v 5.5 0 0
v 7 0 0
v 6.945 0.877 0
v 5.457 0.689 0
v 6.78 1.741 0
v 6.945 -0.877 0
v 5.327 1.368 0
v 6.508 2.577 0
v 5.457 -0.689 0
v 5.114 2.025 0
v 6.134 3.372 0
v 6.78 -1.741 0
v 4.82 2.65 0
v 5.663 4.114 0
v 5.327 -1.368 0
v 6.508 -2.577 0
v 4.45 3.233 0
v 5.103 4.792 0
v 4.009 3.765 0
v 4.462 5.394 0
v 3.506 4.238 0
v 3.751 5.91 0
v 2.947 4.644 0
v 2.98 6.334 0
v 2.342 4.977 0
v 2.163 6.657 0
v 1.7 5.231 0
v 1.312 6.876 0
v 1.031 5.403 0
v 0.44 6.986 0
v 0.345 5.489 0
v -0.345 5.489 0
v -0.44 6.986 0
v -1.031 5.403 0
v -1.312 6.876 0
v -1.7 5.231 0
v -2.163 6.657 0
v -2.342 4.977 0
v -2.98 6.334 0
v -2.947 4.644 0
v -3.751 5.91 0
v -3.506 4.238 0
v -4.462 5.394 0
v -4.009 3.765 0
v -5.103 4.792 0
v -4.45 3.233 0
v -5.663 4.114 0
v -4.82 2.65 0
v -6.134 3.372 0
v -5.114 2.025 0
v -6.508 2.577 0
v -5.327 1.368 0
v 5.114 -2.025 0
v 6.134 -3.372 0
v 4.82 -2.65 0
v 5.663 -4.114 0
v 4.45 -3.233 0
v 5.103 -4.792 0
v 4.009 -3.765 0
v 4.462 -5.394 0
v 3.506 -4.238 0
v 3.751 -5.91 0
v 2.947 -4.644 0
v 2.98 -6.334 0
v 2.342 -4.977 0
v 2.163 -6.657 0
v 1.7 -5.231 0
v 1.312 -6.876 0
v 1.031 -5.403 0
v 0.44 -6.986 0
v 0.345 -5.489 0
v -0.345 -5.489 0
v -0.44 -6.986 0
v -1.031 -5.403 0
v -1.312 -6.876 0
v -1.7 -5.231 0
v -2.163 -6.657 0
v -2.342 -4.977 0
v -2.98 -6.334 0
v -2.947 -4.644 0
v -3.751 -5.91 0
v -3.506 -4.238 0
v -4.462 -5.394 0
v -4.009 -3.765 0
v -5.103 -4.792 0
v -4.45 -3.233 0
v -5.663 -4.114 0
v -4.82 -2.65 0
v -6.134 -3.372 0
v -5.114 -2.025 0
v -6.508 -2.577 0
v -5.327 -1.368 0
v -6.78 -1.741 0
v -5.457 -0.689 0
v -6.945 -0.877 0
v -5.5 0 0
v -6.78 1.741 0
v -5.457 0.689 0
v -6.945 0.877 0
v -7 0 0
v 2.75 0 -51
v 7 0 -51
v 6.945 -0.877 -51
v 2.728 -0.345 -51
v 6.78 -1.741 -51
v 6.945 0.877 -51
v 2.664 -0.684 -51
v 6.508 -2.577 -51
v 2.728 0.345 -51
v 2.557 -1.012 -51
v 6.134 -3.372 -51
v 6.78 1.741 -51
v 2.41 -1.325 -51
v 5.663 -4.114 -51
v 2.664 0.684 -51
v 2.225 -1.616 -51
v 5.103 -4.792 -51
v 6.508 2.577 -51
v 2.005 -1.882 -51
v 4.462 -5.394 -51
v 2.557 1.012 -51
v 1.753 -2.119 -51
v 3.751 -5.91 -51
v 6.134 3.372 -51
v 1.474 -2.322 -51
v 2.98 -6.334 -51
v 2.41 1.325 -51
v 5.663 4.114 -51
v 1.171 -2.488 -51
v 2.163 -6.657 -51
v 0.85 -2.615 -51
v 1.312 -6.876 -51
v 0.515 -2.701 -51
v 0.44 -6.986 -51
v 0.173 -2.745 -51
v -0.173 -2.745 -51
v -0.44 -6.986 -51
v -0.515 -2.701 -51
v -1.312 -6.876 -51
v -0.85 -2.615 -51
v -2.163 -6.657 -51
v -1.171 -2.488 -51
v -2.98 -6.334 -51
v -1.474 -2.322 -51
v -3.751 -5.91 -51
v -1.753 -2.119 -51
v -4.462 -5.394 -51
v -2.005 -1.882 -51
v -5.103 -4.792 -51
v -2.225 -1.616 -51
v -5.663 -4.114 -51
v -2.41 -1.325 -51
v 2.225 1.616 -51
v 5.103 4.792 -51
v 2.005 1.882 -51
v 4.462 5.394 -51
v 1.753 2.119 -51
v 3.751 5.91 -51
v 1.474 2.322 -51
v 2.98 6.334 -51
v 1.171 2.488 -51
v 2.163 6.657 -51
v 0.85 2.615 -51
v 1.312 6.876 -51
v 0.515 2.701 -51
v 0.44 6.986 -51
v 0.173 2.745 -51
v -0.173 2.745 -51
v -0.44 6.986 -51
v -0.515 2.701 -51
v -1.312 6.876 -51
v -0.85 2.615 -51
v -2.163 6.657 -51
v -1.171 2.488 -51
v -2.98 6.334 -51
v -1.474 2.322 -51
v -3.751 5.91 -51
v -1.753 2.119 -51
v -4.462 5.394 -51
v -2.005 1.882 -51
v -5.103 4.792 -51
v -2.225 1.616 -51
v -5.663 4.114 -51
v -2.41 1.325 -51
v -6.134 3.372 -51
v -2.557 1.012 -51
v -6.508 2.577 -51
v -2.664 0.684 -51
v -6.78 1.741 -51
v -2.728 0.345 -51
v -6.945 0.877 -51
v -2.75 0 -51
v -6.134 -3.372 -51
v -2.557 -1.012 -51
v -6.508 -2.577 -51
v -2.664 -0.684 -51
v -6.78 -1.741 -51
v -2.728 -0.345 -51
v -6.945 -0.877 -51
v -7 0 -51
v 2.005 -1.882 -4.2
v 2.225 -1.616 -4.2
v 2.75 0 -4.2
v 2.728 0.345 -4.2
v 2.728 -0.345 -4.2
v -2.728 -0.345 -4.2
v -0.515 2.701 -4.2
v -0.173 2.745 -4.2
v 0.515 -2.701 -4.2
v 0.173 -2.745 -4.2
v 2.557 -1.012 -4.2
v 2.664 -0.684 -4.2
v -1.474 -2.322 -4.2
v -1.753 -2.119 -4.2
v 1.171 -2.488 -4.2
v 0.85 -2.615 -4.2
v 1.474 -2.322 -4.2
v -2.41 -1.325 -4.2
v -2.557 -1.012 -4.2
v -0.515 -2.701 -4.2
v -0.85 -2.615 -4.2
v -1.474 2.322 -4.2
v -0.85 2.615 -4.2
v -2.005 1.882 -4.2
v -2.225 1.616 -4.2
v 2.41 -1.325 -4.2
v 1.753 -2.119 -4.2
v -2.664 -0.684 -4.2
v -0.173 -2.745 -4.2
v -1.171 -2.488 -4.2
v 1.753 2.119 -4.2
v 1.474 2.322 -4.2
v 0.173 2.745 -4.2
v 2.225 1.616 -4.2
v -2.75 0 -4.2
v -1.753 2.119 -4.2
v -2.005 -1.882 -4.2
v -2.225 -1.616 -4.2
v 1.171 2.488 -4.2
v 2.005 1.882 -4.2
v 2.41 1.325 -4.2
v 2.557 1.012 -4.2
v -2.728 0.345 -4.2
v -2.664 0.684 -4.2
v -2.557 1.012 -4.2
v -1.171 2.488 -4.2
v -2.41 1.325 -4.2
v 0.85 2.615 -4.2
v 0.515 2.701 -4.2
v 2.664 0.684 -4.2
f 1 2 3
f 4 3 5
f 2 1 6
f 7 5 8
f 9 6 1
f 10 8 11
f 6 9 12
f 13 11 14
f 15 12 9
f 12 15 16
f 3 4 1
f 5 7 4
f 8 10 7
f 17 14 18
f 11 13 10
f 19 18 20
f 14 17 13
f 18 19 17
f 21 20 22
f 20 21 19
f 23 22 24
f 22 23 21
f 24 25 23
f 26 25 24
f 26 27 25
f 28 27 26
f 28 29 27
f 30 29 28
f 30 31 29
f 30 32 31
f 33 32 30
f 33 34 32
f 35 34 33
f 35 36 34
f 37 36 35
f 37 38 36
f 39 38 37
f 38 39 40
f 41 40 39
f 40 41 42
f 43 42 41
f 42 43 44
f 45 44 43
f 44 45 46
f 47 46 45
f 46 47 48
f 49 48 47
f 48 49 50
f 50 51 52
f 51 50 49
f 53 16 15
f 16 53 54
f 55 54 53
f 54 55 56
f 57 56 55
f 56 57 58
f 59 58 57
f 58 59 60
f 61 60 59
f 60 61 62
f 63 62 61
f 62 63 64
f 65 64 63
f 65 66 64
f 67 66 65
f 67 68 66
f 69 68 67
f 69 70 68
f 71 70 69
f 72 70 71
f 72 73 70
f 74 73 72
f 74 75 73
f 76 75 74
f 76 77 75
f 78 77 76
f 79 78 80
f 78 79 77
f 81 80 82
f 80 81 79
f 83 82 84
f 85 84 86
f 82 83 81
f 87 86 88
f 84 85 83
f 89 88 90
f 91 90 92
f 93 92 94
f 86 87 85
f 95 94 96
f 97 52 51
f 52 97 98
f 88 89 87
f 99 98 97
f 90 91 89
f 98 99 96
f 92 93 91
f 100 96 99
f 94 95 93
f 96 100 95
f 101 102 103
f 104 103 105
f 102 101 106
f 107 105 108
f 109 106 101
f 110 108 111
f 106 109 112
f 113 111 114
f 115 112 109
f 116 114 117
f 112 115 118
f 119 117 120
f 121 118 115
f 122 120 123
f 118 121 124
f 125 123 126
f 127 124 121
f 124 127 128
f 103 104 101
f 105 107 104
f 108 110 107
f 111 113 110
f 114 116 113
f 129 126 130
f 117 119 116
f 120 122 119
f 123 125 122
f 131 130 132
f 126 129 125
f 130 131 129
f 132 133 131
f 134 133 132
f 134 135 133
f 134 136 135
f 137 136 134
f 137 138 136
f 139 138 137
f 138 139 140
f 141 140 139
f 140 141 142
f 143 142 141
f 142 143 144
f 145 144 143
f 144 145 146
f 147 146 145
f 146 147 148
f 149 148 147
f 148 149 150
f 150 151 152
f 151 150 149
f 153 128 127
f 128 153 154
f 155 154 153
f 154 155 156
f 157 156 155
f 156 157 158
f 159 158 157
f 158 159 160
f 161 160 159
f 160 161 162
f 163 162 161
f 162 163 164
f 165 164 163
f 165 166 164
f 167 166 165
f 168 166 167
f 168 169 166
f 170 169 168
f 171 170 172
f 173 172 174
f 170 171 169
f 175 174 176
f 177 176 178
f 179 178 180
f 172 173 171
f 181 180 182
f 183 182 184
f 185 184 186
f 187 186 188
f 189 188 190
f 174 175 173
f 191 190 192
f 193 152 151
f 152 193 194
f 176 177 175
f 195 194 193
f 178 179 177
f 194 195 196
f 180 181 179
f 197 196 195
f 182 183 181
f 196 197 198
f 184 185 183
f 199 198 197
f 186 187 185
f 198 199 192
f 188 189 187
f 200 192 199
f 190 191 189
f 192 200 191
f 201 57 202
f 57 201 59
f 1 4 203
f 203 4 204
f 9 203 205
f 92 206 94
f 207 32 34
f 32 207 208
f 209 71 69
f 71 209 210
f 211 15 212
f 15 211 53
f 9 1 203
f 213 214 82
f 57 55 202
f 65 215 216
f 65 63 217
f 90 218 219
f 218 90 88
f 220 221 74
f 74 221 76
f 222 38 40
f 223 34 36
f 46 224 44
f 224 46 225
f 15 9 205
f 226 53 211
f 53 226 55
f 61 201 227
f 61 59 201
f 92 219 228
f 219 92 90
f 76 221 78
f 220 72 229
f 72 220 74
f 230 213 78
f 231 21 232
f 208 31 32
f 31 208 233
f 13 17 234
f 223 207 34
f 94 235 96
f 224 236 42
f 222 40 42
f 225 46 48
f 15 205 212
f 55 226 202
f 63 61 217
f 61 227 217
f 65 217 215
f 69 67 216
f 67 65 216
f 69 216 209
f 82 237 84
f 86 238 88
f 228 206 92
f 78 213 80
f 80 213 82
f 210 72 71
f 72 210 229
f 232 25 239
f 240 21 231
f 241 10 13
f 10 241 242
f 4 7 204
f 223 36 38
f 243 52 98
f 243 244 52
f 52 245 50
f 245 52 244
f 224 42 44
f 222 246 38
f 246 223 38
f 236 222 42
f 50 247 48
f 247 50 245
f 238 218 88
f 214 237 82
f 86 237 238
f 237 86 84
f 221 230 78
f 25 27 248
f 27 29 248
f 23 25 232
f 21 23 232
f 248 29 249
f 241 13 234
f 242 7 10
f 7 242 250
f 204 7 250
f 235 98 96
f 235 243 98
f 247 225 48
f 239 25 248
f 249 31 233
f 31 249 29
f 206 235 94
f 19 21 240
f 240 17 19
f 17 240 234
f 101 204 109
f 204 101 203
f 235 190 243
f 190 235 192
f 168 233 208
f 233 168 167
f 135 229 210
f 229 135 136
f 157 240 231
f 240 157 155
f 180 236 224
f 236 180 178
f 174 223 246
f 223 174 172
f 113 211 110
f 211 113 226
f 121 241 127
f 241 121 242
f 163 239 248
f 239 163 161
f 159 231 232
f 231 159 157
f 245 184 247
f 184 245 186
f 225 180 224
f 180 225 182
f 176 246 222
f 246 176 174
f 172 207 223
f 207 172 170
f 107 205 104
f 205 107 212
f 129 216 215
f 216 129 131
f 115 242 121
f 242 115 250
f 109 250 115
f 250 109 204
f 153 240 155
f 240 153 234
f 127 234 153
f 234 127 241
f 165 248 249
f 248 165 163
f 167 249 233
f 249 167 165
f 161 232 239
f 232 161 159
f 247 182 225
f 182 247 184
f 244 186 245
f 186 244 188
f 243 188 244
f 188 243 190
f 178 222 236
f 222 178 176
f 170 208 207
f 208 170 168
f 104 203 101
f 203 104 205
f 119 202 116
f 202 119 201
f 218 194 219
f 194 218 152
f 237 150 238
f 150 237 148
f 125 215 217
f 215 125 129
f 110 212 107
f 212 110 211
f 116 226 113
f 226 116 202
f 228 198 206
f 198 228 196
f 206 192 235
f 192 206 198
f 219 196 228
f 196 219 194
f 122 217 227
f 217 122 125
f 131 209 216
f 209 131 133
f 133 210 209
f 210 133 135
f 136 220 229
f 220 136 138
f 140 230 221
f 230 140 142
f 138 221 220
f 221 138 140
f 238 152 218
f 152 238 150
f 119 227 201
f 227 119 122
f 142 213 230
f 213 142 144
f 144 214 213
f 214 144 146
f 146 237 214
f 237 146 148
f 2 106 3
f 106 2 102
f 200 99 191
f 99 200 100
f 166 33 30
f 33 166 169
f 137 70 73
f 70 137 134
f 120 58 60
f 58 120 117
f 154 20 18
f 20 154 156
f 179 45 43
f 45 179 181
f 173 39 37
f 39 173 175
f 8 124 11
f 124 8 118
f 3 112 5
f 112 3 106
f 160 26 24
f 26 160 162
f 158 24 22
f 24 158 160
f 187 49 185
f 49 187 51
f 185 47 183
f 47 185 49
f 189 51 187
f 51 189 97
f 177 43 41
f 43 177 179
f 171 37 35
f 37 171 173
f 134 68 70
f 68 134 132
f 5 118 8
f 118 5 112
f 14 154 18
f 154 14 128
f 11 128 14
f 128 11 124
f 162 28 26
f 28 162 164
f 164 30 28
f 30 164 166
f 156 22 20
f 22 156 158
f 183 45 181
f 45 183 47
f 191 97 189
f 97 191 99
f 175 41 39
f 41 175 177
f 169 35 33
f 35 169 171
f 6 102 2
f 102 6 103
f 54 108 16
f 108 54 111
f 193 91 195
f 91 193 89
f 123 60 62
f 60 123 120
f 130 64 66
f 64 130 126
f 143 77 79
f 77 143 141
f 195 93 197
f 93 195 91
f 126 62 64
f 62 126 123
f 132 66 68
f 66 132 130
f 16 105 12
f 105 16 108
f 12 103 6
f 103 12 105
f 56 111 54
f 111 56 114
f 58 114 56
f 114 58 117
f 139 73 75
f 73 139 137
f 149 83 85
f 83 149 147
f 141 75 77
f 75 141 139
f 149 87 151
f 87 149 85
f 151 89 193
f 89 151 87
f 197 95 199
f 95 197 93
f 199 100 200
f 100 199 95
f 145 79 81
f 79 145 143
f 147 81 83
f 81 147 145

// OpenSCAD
$fn = 50;


difference() {
	union() {
		translate(v = [0, 0, -51.0000000000]) {
			cylinder(h = 51, r = 7.0000000000);
		}
		cylinder(h = 0, r = 10.0000000000);
	}
	union() {
		translate(v = [0, 0, 0]) {
			rotate(a = [0, 0, 0]) {
				difference() {
					union() {
						#translate(v = [0, 0, -51.0000000000]) {
							cylinder(h = 51, r = 2.2500000000);
						}
						#translate(v = [0, 0, -4.2000000000]) {
							cylinder(h = 4.2000000000, r1 = 2.7500000000, r2 = 5.5000000000);
						}
						#translate(v = [0, 0, -51.0000000000]) {
							cylinder(h = 51, r = 2.7500000000);
						}
						#translate(v = [0, 0, -51.0000000000]) {
							cylinder(h = 51, r = 2.2500000000);
						}
					}
					union();
				}
			}
		}
	}
}
